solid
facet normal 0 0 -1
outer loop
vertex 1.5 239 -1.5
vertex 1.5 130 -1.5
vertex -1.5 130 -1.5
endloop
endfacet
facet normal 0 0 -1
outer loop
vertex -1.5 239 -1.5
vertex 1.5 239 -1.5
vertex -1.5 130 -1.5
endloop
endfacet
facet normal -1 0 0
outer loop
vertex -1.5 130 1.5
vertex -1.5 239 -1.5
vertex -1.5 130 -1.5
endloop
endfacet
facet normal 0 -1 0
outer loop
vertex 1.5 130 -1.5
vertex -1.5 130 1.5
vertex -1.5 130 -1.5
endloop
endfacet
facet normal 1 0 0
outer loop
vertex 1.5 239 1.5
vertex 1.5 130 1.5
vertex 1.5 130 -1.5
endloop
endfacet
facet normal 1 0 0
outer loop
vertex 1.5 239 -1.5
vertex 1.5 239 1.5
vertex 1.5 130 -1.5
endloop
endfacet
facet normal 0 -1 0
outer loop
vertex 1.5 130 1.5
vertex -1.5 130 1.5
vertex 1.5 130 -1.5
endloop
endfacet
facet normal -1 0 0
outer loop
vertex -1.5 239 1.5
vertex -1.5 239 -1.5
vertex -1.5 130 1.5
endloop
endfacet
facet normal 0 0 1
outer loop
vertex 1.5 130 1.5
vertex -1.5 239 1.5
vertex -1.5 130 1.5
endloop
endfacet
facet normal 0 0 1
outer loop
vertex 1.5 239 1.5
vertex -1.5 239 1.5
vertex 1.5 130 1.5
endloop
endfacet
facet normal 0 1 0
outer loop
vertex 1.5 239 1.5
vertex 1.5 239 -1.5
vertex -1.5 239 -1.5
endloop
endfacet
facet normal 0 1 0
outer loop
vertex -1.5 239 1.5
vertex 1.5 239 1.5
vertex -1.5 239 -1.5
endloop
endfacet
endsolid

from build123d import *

# Parameters (mm, degrees)
SKETCH_34_W         = 44.1
SKETCH_34_H         = 35
EXTRUDE_1_DEPTH     = 20.9
SKETCH_35_W         = 8
SKETCH_35_H         = 8
EXTRUDE_2_DEPTH     = 109.1
SKETCH_36_W         = 3
SKETCH_36_H         = 3
EXTRUDE_3_DEPTH     = 109
SKETCH_38_W         = 130
SKETCH_38_H         = 130
CUT_EXTRUDE_2_DEPTH = 131


with BuildPart() as part:
    # ｽｹｯﾁ34 → ﾎﾞｽ - 押し出し1 (new body)
    with BuildSketch(Plane(origin=(0, 0, 0), x_dir=(1, 0, 0), z_dir=(0, 1, 0))):
        Rectangle(SKETCH_34_W, SKETCH_34_H)
    extrude(amount=EXTRUDE_1_DEPTH)

    # ｽｹｯﾁ35 → ﾎﾞｽ - 押し出し2 (add)
    with BuildSketch(Plane(origin=(0, 20.9, 0), x_dir=(1, 0, 0), z_dir=(0, 1, 0))):
        Rectangle(SKETCH_35_W, SKETCH_35_H)
    extrude(amount=EXTRUDE_2_DEPTH)

    # ｽｹｯﾁ36 → ﾎﾞｽ - 押し出し3 (add)
    with BuildSketch(Plane(origin=(0, 130, 0), x_dir=(1, 0, 0), z_dir=(0, 1, 0))):
        Rectangle(SKETCH_36_W, SKETCH_36_H)
    extrude(amount=EXTRUDE_3_DEPTH)

    # ｽｹｯﾁ38 → ｶｯﾄ - 押し出し2 (cut, through all)
    with BuildSketch(Plane(origin=(0, 130, 0), x_dir=(1, 0, 0), z_dir=(0, 1, 0))):
        Rectangle(SKETCH_38_W, SKETCH_38_H)
    extrude(amount=-CUT_EXTRUDE_2_DEPTH, mode=Mode.SUBTRACT)


solid = part.part
